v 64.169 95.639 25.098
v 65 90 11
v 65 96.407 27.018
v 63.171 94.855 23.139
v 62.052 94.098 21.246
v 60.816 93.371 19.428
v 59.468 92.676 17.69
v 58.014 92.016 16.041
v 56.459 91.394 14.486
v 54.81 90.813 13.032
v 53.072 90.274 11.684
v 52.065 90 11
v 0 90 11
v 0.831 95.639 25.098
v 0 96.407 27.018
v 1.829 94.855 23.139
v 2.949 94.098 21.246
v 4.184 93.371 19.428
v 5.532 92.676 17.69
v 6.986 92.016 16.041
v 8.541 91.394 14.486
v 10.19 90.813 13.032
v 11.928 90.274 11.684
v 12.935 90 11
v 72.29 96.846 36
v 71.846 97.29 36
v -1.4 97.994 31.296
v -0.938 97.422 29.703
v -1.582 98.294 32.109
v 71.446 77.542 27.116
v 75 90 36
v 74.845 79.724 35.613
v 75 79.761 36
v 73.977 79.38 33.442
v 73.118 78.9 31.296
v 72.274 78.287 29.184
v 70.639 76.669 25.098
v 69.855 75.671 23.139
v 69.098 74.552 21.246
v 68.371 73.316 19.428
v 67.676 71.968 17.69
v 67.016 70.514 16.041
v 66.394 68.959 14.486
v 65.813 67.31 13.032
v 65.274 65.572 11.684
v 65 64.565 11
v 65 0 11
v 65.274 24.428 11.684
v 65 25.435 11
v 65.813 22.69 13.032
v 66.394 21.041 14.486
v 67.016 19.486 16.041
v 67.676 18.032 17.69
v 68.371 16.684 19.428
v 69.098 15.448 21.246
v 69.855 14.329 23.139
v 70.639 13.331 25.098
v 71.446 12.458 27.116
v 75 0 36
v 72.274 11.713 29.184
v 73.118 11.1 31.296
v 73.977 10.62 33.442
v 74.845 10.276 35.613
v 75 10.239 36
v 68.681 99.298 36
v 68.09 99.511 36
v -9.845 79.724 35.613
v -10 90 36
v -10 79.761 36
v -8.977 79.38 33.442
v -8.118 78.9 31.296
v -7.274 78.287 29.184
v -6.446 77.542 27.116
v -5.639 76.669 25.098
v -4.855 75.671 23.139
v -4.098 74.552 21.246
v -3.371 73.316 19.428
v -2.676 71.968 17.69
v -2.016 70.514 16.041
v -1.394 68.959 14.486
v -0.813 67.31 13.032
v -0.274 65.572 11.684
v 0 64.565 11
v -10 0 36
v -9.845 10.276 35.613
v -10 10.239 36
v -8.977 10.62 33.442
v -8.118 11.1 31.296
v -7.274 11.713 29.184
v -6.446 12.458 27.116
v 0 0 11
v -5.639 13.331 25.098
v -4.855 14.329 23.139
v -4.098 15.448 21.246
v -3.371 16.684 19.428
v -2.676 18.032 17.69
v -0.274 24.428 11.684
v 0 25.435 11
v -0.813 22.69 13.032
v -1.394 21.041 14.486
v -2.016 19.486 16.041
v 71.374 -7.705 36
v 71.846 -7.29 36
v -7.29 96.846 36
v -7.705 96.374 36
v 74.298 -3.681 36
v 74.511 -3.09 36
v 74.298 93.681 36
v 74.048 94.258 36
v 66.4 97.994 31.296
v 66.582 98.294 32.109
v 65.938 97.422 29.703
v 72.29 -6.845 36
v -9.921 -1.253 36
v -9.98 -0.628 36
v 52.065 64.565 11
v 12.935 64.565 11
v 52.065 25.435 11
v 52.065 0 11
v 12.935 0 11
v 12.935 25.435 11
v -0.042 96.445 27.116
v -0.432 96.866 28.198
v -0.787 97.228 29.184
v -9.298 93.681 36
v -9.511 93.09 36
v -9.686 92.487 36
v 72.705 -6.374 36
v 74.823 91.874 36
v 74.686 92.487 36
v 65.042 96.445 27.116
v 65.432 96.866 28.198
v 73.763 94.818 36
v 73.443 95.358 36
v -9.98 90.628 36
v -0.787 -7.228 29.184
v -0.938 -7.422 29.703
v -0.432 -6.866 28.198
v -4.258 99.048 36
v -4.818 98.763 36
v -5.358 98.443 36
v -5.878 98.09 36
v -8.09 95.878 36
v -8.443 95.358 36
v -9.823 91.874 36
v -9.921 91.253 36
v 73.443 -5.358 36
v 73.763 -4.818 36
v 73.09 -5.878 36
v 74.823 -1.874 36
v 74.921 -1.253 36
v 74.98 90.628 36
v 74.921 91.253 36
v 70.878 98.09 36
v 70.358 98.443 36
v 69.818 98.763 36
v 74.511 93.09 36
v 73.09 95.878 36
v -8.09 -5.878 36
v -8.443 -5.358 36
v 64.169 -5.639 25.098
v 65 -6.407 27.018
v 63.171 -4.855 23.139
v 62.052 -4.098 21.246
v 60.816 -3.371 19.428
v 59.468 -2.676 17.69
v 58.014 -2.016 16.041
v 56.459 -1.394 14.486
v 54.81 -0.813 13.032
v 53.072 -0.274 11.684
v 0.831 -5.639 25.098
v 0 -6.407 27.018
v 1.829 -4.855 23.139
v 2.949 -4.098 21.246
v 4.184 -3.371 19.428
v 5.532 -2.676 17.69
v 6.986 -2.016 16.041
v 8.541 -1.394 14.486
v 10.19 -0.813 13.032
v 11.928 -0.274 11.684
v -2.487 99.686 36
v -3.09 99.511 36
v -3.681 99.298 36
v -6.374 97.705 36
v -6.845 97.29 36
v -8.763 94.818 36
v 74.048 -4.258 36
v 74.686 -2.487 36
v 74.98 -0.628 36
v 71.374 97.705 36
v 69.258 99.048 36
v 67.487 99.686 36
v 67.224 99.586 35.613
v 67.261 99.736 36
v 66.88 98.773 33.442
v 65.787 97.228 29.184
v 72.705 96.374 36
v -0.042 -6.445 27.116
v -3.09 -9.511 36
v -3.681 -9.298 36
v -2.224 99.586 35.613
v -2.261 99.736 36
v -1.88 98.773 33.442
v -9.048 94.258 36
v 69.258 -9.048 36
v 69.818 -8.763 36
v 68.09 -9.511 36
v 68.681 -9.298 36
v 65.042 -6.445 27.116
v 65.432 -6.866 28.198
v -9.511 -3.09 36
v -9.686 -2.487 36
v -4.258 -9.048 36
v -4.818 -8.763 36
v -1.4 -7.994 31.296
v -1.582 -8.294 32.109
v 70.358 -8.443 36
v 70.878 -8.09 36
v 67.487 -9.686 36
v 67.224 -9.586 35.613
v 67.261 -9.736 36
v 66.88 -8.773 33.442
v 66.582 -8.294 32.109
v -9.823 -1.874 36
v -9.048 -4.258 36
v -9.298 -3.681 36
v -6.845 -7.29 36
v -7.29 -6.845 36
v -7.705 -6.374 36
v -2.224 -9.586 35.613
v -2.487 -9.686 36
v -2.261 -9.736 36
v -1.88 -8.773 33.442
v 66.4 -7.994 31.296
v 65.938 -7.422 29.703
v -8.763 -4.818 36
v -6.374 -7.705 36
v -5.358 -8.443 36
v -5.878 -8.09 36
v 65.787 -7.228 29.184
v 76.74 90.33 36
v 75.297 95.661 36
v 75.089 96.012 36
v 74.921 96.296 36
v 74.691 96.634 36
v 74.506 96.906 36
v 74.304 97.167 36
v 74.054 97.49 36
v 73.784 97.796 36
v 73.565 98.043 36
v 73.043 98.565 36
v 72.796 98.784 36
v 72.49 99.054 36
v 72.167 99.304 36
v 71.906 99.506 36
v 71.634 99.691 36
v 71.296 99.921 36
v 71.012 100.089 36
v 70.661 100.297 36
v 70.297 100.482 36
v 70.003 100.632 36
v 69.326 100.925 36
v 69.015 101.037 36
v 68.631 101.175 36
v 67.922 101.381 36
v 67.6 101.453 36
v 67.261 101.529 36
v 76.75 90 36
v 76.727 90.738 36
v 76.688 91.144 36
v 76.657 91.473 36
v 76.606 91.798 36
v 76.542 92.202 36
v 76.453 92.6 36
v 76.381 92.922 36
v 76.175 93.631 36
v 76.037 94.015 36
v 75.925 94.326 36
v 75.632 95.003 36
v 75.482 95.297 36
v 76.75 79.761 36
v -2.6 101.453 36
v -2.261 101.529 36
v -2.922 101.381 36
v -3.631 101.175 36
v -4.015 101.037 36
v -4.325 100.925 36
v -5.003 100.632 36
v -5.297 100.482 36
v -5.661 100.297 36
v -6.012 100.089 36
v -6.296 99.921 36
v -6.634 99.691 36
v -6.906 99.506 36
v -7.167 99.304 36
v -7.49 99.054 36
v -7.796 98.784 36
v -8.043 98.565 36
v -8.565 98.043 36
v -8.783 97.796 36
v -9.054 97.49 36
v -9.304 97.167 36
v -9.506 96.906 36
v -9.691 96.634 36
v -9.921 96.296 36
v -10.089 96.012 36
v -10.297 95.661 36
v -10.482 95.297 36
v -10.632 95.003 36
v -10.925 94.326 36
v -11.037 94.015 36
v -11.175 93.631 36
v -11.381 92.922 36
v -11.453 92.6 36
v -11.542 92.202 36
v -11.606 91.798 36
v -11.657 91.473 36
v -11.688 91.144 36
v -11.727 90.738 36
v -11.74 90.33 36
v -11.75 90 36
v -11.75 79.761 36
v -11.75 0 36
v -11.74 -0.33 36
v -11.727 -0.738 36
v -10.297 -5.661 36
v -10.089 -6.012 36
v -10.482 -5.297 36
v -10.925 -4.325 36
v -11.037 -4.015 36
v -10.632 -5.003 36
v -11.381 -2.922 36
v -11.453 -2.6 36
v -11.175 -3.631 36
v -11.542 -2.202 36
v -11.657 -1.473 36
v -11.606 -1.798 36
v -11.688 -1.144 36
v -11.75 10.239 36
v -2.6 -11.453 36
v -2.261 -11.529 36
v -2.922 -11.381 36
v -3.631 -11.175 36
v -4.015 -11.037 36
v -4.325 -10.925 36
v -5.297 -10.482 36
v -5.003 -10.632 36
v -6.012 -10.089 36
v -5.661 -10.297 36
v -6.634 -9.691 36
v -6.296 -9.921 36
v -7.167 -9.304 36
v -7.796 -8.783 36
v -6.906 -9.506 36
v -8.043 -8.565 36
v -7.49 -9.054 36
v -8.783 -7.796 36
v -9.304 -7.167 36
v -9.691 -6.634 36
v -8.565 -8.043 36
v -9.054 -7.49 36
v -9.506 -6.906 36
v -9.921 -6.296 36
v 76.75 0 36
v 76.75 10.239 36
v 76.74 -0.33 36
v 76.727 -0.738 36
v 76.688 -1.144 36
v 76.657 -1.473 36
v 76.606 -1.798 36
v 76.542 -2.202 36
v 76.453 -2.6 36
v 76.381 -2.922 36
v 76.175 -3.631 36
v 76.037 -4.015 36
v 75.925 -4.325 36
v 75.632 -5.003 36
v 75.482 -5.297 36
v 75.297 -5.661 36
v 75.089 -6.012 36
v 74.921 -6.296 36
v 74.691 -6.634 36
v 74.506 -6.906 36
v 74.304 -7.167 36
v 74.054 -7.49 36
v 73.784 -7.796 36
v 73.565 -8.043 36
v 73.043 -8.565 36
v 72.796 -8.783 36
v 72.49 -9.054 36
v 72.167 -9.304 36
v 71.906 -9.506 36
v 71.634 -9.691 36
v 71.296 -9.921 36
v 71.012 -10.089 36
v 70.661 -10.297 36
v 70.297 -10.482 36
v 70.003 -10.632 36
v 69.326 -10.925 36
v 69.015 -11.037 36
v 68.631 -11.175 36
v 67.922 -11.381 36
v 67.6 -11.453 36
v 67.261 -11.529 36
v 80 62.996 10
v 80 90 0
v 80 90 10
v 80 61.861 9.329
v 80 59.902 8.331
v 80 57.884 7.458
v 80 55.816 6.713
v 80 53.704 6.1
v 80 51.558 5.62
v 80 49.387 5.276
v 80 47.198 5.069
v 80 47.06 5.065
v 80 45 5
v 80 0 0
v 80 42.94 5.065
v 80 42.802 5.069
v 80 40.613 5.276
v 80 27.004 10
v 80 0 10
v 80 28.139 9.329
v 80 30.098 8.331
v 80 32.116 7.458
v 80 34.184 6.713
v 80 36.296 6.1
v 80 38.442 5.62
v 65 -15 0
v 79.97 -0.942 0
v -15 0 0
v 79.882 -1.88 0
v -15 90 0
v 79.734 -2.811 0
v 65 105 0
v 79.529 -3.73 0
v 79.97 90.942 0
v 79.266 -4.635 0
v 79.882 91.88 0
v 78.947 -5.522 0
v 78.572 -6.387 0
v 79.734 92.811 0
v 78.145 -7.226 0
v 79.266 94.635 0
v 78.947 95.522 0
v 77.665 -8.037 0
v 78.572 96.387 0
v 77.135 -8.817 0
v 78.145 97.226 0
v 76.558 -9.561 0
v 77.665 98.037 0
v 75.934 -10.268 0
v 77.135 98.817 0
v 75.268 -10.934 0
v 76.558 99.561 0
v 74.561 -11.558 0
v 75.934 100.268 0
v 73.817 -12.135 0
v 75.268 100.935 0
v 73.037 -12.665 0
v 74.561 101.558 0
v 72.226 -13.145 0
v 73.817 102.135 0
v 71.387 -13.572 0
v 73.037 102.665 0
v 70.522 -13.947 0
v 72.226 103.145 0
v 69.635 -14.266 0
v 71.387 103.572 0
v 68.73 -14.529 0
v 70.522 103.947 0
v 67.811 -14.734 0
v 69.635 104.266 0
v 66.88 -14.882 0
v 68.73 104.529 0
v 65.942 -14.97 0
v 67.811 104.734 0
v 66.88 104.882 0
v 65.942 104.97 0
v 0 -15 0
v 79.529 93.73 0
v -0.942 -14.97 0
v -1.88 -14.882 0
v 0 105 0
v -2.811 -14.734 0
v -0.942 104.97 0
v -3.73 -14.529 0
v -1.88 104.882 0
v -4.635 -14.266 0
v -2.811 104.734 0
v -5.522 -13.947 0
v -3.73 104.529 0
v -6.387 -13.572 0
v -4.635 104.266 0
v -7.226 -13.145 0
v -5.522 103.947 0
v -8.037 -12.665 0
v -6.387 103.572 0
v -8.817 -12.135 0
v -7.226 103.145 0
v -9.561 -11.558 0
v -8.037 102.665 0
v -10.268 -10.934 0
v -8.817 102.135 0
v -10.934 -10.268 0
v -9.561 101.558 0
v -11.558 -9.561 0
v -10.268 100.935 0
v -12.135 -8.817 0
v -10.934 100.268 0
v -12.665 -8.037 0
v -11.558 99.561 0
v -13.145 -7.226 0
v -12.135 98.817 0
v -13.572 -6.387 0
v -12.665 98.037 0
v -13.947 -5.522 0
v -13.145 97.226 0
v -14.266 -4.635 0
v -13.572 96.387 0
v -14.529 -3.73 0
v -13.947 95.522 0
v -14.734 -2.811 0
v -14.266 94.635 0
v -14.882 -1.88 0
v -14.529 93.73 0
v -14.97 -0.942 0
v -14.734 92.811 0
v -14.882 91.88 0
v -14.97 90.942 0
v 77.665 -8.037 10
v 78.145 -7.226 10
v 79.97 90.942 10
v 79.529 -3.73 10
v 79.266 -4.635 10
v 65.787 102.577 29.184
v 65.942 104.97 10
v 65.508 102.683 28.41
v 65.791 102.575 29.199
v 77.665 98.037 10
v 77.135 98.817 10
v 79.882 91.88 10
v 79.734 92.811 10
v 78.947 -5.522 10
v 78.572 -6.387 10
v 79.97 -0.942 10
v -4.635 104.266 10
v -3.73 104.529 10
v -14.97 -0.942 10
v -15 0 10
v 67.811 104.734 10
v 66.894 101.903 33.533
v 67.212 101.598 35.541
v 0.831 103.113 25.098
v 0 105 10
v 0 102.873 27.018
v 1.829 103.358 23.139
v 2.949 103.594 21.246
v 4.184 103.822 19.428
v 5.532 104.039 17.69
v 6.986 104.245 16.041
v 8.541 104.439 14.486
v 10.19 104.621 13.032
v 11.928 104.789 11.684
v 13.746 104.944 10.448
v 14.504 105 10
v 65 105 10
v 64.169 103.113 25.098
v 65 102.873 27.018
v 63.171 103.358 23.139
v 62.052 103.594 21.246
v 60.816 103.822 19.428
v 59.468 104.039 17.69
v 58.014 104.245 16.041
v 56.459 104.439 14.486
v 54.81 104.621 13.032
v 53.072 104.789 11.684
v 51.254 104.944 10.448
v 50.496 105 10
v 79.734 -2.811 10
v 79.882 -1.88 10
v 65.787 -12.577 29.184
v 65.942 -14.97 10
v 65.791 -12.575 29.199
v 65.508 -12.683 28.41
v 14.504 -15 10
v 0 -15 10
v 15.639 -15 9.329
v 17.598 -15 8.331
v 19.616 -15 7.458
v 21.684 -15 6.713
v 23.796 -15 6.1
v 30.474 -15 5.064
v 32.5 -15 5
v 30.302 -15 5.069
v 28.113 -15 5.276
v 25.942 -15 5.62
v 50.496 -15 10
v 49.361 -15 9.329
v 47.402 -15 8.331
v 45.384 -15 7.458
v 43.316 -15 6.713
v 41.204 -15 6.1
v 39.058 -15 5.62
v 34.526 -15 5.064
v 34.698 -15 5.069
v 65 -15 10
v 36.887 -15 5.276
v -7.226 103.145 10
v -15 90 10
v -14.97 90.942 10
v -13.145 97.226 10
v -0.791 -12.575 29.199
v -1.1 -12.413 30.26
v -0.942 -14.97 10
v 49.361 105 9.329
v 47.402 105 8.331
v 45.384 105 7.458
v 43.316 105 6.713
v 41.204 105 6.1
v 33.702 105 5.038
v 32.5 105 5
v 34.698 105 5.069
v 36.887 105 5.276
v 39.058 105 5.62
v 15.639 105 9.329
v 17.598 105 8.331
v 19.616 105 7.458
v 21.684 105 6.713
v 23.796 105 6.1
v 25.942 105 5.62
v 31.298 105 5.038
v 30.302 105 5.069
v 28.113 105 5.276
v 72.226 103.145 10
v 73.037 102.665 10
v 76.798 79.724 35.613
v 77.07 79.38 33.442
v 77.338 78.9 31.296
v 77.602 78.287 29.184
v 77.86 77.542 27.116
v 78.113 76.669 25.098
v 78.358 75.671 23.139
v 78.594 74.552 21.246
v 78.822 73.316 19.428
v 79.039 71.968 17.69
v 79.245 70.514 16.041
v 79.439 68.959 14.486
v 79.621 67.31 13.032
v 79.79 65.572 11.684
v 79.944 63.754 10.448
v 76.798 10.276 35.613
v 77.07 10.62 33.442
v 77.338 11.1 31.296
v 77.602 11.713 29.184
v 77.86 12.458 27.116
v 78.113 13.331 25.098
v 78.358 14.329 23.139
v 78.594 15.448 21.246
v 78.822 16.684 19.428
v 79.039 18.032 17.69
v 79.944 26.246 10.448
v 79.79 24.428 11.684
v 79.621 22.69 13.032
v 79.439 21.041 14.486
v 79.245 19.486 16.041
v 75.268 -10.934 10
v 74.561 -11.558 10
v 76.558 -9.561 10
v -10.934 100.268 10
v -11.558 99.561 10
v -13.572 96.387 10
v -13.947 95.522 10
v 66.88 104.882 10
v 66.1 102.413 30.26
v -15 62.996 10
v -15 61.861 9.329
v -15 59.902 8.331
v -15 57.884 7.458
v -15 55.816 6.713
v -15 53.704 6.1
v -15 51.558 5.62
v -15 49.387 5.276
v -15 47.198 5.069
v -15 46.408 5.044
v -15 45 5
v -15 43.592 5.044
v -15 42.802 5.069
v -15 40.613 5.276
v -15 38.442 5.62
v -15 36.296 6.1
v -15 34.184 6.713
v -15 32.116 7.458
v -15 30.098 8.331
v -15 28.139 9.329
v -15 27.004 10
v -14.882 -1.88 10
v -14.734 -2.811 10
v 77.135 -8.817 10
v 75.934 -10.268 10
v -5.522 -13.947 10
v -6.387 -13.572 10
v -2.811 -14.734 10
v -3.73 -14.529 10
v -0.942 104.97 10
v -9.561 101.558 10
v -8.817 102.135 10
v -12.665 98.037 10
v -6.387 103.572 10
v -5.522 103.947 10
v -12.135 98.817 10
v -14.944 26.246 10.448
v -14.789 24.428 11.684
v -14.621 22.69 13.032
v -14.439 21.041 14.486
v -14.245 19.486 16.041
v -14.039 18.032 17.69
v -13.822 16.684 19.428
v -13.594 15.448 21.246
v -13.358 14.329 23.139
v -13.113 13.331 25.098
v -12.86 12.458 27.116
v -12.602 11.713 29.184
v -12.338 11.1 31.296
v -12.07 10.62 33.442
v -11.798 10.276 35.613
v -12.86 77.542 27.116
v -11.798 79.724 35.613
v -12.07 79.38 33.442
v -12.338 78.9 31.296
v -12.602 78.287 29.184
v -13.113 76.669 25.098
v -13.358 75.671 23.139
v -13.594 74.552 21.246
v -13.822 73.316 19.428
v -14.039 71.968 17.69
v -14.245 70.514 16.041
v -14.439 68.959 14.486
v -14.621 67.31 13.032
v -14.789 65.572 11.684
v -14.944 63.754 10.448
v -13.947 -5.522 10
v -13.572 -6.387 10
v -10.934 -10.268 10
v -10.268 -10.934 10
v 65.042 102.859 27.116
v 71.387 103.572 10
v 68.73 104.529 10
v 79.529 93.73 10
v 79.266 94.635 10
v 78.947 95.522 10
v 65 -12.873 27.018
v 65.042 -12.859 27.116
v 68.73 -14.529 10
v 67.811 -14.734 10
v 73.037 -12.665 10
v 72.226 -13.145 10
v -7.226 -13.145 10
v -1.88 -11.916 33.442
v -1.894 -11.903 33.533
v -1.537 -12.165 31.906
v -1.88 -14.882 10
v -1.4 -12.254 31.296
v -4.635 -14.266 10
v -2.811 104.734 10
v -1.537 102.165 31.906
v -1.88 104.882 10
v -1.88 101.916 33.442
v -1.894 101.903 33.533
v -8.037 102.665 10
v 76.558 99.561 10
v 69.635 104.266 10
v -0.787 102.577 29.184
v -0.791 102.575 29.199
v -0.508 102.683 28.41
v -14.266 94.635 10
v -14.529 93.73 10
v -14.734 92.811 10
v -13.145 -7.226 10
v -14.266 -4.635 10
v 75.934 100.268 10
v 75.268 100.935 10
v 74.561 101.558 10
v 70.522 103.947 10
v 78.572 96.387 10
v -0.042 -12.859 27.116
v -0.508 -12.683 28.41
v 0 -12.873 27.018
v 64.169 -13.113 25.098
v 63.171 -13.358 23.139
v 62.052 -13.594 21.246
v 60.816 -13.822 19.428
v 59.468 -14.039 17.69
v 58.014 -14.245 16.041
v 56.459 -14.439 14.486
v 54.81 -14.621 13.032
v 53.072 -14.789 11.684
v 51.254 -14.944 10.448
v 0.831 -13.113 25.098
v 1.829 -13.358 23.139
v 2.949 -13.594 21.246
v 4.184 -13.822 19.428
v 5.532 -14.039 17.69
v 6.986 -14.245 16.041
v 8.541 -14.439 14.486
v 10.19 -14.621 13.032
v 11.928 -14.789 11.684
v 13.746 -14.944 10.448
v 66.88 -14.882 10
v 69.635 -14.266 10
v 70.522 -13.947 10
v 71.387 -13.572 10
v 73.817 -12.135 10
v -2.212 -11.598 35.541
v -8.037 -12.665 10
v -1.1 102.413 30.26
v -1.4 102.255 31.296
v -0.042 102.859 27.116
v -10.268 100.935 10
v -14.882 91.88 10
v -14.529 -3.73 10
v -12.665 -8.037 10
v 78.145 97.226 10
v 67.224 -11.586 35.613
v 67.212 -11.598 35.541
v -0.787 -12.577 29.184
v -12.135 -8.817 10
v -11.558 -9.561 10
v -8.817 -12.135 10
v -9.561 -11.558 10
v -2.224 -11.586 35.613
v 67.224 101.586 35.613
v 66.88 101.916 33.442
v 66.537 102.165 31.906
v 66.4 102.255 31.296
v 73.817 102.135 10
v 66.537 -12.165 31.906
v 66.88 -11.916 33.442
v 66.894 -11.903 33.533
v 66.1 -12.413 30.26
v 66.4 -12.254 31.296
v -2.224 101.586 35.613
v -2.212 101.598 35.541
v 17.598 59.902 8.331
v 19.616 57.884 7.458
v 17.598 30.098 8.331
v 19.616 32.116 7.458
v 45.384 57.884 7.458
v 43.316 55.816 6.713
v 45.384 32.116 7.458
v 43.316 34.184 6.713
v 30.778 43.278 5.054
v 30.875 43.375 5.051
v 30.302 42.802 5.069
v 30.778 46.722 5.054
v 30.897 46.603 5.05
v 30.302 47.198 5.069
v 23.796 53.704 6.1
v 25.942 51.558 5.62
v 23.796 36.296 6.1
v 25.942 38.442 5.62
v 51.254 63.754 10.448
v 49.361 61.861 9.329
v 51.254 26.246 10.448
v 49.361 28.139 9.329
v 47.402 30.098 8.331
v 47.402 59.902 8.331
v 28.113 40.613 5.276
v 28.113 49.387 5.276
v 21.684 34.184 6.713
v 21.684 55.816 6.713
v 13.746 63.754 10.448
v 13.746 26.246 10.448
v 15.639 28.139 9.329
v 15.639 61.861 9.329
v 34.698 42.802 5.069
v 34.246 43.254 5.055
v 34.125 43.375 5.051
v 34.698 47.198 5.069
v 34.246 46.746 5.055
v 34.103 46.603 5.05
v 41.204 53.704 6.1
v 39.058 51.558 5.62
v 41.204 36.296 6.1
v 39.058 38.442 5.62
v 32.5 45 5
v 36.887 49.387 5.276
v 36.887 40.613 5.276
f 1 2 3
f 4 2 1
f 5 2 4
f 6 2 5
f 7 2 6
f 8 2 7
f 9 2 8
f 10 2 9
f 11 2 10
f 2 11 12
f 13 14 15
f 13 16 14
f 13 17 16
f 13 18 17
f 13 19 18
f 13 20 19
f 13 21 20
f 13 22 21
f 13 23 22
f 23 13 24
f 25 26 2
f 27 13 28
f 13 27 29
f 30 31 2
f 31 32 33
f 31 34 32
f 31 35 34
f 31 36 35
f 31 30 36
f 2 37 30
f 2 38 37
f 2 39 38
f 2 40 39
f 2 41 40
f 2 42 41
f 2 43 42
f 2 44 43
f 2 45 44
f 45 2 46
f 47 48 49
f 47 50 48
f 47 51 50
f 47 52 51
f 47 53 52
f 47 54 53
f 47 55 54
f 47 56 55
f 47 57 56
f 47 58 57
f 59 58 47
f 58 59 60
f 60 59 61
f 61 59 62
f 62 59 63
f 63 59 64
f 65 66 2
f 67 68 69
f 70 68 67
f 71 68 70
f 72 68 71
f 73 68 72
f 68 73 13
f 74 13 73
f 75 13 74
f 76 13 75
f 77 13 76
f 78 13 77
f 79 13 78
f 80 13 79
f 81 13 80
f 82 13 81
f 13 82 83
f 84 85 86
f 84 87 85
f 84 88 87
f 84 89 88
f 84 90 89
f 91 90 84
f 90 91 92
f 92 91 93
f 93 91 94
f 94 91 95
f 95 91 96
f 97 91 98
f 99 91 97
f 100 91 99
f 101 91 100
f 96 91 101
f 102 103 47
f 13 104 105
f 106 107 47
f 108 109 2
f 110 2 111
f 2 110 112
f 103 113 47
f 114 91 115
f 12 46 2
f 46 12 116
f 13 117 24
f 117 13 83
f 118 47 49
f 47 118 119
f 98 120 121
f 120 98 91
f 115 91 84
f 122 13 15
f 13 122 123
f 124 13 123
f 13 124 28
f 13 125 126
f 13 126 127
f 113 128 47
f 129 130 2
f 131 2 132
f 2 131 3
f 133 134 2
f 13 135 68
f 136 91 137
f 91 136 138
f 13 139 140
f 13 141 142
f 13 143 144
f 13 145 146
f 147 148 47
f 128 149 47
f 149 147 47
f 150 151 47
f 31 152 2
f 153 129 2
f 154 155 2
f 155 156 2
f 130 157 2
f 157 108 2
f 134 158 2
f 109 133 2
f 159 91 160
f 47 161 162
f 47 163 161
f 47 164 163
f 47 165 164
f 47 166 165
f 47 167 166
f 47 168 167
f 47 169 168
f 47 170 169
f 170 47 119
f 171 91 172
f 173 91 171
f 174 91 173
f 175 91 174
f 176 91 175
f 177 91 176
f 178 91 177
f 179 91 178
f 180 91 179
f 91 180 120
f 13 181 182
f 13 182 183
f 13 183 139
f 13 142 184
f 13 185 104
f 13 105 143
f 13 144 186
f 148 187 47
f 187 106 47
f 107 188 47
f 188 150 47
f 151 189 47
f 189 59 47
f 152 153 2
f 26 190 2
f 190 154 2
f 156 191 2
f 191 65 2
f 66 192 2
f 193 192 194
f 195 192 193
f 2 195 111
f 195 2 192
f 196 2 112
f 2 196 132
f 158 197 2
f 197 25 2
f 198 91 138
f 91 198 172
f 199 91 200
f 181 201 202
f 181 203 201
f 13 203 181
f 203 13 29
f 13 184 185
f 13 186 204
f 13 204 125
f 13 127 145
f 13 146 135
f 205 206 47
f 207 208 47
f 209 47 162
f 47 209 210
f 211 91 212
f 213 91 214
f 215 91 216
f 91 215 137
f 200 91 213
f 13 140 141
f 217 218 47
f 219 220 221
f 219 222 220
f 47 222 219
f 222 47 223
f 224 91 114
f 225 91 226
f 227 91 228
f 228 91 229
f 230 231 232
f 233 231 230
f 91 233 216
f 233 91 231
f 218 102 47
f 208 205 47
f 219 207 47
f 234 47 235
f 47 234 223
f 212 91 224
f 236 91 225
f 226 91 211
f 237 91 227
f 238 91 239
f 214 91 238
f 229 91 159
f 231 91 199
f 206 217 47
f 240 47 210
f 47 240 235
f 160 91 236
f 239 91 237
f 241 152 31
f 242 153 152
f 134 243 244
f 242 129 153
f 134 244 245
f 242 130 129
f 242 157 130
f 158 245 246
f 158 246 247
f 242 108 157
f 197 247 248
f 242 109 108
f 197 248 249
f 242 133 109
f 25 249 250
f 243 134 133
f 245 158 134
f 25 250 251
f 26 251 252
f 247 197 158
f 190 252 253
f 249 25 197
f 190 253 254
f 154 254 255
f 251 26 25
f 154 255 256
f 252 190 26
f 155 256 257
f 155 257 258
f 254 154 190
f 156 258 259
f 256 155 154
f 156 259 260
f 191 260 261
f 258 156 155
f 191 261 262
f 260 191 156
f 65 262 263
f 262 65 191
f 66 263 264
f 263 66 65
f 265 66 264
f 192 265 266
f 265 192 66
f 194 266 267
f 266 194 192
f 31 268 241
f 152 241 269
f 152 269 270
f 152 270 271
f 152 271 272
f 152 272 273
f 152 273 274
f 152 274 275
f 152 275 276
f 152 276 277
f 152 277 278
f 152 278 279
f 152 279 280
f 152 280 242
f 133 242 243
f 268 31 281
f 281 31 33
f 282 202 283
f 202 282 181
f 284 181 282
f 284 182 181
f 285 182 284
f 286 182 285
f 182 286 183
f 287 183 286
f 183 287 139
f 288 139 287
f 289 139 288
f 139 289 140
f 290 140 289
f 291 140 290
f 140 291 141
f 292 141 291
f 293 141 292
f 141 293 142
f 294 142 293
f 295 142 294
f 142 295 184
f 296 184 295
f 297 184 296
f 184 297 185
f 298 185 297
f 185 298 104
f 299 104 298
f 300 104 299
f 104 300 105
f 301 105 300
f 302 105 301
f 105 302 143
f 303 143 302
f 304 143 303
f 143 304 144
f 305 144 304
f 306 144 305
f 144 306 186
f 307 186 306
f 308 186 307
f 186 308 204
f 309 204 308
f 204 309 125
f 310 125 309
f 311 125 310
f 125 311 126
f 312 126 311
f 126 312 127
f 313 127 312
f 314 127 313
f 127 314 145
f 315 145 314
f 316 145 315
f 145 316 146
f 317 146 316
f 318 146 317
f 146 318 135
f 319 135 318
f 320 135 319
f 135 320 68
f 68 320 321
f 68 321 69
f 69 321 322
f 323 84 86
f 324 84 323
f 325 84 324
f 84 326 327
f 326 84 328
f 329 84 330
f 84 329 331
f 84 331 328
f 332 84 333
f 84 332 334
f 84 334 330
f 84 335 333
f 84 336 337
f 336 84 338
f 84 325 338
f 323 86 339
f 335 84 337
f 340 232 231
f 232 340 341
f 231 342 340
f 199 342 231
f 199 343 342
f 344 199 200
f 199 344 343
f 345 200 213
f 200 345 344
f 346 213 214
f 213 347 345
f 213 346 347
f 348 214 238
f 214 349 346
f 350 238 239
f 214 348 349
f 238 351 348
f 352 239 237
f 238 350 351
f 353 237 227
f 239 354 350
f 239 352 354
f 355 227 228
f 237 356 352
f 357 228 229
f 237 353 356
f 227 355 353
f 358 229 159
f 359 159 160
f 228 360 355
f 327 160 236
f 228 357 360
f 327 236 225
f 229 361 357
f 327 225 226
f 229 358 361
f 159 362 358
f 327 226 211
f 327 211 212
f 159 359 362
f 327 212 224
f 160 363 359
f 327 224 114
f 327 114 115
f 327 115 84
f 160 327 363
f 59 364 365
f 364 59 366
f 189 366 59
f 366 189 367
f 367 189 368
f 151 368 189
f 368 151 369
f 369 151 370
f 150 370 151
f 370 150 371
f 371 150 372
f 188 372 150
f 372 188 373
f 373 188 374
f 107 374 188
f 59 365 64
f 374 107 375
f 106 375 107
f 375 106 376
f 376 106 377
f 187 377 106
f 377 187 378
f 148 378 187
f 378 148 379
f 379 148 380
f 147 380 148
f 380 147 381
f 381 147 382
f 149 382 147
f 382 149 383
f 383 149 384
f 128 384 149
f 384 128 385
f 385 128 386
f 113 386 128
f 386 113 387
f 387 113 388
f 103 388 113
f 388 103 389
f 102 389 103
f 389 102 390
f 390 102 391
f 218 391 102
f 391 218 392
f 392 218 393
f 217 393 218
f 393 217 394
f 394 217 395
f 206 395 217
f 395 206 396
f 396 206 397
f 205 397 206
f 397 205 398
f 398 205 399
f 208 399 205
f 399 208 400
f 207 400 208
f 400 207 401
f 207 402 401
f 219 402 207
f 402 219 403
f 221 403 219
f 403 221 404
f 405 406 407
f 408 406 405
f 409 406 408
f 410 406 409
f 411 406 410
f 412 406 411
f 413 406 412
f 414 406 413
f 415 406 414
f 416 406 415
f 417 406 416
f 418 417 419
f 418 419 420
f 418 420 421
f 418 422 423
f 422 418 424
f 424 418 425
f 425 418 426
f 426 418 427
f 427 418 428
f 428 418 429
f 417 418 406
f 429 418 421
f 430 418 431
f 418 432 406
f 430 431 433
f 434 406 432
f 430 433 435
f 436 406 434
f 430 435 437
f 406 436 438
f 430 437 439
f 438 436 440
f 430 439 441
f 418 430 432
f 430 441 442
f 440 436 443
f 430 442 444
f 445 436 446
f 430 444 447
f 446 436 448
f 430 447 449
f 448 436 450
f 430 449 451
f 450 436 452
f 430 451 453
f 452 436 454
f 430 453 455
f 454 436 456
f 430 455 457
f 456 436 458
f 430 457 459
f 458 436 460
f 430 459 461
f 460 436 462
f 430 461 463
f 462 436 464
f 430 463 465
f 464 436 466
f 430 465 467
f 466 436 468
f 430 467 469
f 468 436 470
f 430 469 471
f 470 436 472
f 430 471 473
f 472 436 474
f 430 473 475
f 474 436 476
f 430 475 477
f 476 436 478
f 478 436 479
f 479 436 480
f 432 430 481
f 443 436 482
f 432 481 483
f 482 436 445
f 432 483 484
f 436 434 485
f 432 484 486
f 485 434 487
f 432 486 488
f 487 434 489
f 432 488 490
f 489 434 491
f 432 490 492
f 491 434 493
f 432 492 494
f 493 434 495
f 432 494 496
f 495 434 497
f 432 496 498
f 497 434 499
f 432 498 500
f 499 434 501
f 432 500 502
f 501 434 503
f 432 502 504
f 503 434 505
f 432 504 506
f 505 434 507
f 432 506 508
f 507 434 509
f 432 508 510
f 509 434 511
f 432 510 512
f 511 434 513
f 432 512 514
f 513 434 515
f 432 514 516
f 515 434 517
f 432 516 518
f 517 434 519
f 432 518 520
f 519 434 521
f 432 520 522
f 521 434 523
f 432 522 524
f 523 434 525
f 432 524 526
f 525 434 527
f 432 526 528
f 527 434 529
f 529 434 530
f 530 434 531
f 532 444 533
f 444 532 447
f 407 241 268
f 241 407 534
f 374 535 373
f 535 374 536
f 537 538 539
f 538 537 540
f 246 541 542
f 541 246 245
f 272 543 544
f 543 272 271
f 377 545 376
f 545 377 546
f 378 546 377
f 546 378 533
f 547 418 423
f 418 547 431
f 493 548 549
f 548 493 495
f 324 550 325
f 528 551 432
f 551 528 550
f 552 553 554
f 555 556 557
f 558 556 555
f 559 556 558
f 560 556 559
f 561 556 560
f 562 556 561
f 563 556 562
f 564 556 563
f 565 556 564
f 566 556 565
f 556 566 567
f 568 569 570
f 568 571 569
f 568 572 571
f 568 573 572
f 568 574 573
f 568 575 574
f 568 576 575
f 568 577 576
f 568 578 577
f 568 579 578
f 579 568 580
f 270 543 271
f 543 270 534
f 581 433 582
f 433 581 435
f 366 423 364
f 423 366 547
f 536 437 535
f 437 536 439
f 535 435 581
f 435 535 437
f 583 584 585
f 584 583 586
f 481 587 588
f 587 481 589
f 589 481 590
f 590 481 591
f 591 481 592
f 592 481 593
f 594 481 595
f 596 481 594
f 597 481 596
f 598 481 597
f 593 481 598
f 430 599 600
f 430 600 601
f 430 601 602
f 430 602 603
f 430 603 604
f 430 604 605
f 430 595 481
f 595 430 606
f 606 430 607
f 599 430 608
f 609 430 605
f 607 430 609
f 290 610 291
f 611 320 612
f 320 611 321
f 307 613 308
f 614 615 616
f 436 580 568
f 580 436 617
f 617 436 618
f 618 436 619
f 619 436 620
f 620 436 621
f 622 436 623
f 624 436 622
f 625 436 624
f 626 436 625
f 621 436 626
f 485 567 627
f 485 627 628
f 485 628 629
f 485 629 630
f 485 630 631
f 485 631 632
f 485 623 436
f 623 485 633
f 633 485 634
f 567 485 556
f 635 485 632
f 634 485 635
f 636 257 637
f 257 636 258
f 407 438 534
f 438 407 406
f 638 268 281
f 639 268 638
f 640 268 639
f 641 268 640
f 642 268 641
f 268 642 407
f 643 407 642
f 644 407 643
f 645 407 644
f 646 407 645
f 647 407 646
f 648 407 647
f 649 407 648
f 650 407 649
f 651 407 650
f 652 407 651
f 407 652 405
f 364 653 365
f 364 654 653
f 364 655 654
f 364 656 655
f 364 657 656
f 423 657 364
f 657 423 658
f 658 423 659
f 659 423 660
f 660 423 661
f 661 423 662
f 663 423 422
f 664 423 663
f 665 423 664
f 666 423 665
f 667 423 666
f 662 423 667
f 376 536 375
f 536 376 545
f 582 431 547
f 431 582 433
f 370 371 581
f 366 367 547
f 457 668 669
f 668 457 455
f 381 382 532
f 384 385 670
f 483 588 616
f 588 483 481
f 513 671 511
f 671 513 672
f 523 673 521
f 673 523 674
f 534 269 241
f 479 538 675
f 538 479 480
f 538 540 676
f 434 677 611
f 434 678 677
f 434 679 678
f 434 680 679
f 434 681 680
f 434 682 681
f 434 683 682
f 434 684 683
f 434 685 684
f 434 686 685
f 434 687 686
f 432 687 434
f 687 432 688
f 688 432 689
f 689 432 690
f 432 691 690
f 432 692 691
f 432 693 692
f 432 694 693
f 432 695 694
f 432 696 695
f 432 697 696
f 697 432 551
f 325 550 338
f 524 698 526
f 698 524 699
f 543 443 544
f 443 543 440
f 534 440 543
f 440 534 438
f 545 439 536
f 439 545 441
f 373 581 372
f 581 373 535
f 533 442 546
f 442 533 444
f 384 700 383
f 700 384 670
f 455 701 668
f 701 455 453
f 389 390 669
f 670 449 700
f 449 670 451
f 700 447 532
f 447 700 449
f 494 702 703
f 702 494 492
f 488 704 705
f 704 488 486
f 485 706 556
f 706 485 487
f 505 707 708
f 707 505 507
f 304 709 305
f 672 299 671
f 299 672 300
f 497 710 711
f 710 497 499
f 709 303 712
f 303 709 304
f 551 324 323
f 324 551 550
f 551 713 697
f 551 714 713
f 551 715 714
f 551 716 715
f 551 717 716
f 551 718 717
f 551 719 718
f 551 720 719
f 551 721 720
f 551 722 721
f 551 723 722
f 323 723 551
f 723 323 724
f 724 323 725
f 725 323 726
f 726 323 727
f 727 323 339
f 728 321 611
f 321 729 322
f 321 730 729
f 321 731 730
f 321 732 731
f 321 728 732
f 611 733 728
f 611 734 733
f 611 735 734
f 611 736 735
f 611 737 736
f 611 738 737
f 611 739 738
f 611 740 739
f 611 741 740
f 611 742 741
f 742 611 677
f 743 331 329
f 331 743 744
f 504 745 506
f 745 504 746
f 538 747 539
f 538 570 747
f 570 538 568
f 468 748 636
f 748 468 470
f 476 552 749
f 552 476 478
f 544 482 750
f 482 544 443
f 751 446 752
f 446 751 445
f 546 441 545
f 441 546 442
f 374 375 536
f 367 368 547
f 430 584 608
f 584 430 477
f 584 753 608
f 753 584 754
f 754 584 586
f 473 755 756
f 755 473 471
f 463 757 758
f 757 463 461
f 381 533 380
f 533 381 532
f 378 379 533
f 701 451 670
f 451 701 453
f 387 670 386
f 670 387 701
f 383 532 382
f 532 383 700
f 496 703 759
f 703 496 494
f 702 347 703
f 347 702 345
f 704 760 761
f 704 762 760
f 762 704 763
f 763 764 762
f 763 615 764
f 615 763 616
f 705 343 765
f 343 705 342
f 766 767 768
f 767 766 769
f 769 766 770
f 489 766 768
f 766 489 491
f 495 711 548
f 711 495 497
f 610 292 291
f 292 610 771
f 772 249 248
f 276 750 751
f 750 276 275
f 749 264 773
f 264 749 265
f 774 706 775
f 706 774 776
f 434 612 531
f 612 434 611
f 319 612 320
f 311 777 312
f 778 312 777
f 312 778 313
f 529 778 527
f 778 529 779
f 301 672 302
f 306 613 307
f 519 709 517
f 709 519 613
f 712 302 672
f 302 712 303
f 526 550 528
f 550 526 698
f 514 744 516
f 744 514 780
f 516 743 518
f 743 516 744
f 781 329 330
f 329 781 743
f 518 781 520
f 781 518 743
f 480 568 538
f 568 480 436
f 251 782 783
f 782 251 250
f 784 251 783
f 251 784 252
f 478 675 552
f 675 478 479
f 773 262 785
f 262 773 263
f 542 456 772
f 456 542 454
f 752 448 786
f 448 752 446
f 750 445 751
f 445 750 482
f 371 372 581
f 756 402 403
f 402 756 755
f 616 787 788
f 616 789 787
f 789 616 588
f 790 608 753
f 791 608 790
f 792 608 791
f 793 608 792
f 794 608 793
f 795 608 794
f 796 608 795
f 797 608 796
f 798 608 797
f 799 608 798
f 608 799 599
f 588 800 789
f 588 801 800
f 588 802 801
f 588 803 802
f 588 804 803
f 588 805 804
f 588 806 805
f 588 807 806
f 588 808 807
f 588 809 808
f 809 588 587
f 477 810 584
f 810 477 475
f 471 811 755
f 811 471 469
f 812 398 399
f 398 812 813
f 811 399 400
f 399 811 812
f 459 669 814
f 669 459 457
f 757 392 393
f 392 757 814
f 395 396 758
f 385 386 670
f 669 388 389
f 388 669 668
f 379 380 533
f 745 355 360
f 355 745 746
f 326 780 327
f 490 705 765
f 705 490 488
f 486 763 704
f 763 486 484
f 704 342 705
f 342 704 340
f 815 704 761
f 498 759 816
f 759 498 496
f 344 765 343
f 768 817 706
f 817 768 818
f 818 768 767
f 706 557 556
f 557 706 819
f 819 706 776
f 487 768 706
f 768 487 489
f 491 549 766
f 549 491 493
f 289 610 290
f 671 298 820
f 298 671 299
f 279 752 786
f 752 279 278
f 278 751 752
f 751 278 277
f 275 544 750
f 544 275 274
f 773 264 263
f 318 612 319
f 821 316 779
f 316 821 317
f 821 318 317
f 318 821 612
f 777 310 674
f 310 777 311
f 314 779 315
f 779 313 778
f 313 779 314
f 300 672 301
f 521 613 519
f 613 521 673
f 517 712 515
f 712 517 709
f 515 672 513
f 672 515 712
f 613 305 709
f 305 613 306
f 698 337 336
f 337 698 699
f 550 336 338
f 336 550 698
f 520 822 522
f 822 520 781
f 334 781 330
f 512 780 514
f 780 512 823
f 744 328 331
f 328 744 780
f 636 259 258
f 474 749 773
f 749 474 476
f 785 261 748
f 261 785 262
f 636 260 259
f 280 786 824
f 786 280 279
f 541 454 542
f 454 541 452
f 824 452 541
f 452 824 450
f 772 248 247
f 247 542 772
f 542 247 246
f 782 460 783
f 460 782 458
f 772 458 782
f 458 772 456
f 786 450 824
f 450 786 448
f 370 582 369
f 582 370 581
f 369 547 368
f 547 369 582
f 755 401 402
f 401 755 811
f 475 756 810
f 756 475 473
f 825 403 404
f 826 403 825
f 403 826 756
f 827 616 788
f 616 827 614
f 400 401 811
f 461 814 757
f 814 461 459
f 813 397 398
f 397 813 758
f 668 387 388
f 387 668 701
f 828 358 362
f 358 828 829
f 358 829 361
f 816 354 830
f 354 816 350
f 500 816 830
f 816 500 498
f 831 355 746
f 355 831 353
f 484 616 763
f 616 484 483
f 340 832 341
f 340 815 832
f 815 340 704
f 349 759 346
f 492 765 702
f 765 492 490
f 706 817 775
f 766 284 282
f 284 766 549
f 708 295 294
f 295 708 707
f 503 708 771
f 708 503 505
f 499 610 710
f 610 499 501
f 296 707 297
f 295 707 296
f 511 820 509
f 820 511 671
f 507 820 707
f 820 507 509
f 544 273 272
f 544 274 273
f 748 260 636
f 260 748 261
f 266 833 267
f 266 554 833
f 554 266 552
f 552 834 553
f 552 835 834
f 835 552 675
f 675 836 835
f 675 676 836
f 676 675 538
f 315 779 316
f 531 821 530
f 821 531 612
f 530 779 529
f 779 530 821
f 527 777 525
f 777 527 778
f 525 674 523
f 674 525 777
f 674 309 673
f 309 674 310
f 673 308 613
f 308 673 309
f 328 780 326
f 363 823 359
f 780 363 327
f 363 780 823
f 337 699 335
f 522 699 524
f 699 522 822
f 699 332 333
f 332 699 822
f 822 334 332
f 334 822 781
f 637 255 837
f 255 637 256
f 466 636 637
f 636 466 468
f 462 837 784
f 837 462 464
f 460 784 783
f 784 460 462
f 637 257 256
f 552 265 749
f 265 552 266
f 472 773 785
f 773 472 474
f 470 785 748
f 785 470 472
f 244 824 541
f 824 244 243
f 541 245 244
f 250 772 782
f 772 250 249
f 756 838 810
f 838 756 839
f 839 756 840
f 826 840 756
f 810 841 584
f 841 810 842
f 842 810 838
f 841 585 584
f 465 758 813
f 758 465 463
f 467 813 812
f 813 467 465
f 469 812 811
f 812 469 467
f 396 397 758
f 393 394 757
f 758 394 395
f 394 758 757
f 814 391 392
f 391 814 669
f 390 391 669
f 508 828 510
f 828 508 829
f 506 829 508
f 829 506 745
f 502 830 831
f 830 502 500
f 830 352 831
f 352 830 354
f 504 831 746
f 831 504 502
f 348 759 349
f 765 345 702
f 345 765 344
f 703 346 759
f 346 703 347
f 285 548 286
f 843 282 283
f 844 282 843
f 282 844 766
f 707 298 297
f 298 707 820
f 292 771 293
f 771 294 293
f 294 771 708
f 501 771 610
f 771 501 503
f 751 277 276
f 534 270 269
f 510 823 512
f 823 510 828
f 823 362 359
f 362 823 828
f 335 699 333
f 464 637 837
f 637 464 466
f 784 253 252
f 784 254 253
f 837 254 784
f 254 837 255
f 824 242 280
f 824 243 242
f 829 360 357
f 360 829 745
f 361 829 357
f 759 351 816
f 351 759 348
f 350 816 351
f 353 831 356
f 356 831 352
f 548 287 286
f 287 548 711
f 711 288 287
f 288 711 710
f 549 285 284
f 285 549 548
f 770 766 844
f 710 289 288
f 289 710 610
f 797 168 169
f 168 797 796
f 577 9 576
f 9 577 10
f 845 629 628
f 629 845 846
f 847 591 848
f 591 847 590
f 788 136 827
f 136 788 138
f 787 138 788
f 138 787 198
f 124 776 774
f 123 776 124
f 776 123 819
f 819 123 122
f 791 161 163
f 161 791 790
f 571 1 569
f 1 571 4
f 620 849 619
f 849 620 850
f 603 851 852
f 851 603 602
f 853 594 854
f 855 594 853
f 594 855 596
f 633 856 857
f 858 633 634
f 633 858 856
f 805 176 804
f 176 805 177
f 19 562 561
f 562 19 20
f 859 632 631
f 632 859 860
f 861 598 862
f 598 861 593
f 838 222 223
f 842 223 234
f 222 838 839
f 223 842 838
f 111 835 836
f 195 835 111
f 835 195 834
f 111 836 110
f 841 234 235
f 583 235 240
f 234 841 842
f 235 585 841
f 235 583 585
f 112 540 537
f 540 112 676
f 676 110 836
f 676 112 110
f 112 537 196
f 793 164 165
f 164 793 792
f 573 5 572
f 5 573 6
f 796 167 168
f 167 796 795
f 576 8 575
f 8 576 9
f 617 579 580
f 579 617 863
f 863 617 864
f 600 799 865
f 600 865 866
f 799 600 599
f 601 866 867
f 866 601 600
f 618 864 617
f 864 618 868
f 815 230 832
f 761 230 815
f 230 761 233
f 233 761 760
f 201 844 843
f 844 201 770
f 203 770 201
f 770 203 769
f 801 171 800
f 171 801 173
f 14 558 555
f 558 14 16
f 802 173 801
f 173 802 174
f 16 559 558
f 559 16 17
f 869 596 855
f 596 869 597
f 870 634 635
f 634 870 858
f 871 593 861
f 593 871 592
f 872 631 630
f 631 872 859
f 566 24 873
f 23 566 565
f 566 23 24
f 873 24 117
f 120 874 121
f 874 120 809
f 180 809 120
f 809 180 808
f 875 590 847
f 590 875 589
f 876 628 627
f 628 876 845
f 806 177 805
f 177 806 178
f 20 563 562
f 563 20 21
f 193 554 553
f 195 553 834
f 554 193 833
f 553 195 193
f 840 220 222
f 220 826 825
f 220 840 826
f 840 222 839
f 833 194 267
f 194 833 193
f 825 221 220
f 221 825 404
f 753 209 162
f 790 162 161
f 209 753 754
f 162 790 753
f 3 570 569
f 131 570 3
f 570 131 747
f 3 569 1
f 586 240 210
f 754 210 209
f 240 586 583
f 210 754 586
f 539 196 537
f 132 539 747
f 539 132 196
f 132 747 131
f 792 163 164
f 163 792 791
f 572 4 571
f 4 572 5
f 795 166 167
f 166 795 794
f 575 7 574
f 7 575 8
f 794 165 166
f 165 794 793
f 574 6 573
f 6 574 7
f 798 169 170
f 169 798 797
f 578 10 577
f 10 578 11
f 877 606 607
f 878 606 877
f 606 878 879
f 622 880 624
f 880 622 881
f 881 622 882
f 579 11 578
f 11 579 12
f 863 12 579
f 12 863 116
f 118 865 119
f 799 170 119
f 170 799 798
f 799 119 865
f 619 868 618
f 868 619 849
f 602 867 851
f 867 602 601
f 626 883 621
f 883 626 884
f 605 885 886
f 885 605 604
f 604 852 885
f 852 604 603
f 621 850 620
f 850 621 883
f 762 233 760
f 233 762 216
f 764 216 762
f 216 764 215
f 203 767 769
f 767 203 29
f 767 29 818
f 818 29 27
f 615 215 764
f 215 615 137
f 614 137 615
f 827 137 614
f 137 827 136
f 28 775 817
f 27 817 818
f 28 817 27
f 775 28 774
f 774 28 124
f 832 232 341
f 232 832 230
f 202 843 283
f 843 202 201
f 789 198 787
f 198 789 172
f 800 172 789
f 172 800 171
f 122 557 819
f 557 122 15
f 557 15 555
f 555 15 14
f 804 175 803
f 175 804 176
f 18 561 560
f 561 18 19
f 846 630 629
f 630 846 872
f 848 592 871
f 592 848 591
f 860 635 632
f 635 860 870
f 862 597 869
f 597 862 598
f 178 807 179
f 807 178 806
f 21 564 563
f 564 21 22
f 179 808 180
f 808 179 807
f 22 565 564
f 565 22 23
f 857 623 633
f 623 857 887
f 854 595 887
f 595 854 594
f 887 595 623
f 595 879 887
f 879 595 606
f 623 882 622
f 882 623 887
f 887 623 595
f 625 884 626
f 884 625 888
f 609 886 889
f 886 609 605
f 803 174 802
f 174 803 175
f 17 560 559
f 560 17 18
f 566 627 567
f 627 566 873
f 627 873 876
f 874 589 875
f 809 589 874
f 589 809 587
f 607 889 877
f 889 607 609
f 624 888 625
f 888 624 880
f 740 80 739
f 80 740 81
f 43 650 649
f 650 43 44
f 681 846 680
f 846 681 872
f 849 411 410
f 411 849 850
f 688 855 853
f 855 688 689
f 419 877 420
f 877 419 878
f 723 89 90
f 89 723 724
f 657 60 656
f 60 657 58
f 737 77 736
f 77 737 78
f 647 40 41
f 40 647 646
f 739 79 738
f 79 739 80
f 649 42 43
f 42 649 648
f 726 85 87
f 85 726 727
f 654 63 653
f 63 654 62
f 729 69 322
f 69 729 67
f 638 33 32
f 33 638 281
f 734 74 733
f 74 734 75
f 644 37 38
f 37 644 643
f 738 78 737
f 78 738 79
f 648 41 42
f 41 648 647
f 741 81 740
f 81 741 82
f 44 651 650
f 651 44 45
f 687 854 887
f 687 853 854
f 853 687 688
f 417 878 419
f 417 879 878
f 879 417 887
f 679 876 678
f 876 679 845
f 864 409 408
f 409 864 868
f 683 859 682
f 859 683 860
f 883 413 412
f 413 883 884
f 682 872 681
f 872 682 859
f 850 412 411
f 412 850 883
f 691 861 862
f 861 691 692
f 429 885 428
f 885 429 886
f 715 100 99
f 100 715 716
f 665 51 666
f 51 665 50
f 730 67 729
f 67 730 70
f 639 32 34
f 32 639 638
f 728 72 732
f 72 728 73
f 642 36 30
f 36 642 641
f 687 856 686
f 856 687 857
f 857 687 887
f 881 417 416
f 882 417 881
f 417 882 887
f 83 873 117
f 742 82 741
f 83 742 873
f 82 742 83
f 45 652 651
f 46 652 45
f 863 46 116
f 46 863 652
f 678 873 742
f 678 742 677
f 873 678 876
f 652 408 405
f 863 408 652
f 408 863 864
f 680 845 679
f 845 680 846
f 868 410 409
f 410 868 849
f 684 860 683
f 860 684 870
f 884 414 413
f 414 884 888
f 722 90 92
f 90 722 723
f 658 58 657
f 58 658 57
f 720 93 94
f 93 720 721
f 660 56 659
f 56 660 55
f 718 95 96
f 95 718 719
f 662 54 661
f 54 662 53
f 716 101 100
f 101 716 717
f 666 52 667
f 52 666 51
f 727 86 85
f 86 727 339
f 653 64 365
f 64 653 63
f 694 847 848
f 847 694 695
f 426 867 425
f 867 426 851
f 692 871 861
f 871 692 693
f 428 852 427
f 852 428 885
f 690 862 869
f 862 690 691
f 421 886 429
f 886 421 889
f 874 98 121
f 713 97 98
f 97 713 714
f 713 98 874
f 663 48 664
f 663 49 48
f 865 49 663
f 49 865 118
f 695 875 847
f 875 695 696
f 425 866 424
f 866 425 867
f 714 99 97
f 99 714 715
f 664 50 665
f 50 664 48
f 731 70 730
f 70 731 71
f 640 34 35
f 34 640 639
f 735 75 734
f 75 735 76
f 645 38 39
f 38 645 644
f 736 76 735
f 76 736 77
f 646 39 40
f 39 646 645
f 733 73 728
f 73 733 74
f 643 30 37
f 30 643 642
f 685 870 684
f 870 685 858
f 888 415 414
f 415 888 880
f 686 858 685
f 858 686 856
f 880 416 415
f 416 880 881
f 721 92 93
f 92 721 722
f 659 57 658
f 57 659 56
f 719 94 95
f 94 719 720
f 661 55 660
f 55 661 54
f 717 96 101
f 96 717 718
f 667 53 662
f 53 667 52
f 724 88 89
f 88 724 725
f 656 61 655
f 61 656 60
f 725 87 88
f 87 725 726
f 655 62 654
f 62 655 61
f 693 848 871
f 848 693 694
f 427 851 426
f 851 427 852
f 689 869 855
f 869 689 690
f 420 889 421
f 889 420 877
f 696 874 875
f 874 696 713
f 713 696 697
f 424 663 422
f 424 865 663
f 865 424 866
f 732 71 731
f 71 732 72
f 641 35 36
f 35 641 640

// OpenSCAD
module cell (){
difference(){
    difference(){
        minkowski(){
            cube([65,90,10]);
            cylinder(40,d1=30,d2=20);
        }        
        translate([0,0,11]){
            union(){
                minkowski(){
                    cube([65,90,10]);
                    cylinder(25,d1=0,d2=20);
                }
                translate([-12.5,-15,25]){
                    cube([90,120,20]);
                }
            }
        }
    }
    union(){
        translate([32.5,-40,40]){
            rotate([270,0,0]){
                cylinder(320,d=70);
            }
        }
        translate([100,45,40]){
            rotate([270,0,90]){
                cylinder(320,d=70);
            }
        }
    }
}
}

$fn=100;
/*
union(){
    cell();
    translate([85,0,0]){
        cell();
    }
}
*/
cell();
